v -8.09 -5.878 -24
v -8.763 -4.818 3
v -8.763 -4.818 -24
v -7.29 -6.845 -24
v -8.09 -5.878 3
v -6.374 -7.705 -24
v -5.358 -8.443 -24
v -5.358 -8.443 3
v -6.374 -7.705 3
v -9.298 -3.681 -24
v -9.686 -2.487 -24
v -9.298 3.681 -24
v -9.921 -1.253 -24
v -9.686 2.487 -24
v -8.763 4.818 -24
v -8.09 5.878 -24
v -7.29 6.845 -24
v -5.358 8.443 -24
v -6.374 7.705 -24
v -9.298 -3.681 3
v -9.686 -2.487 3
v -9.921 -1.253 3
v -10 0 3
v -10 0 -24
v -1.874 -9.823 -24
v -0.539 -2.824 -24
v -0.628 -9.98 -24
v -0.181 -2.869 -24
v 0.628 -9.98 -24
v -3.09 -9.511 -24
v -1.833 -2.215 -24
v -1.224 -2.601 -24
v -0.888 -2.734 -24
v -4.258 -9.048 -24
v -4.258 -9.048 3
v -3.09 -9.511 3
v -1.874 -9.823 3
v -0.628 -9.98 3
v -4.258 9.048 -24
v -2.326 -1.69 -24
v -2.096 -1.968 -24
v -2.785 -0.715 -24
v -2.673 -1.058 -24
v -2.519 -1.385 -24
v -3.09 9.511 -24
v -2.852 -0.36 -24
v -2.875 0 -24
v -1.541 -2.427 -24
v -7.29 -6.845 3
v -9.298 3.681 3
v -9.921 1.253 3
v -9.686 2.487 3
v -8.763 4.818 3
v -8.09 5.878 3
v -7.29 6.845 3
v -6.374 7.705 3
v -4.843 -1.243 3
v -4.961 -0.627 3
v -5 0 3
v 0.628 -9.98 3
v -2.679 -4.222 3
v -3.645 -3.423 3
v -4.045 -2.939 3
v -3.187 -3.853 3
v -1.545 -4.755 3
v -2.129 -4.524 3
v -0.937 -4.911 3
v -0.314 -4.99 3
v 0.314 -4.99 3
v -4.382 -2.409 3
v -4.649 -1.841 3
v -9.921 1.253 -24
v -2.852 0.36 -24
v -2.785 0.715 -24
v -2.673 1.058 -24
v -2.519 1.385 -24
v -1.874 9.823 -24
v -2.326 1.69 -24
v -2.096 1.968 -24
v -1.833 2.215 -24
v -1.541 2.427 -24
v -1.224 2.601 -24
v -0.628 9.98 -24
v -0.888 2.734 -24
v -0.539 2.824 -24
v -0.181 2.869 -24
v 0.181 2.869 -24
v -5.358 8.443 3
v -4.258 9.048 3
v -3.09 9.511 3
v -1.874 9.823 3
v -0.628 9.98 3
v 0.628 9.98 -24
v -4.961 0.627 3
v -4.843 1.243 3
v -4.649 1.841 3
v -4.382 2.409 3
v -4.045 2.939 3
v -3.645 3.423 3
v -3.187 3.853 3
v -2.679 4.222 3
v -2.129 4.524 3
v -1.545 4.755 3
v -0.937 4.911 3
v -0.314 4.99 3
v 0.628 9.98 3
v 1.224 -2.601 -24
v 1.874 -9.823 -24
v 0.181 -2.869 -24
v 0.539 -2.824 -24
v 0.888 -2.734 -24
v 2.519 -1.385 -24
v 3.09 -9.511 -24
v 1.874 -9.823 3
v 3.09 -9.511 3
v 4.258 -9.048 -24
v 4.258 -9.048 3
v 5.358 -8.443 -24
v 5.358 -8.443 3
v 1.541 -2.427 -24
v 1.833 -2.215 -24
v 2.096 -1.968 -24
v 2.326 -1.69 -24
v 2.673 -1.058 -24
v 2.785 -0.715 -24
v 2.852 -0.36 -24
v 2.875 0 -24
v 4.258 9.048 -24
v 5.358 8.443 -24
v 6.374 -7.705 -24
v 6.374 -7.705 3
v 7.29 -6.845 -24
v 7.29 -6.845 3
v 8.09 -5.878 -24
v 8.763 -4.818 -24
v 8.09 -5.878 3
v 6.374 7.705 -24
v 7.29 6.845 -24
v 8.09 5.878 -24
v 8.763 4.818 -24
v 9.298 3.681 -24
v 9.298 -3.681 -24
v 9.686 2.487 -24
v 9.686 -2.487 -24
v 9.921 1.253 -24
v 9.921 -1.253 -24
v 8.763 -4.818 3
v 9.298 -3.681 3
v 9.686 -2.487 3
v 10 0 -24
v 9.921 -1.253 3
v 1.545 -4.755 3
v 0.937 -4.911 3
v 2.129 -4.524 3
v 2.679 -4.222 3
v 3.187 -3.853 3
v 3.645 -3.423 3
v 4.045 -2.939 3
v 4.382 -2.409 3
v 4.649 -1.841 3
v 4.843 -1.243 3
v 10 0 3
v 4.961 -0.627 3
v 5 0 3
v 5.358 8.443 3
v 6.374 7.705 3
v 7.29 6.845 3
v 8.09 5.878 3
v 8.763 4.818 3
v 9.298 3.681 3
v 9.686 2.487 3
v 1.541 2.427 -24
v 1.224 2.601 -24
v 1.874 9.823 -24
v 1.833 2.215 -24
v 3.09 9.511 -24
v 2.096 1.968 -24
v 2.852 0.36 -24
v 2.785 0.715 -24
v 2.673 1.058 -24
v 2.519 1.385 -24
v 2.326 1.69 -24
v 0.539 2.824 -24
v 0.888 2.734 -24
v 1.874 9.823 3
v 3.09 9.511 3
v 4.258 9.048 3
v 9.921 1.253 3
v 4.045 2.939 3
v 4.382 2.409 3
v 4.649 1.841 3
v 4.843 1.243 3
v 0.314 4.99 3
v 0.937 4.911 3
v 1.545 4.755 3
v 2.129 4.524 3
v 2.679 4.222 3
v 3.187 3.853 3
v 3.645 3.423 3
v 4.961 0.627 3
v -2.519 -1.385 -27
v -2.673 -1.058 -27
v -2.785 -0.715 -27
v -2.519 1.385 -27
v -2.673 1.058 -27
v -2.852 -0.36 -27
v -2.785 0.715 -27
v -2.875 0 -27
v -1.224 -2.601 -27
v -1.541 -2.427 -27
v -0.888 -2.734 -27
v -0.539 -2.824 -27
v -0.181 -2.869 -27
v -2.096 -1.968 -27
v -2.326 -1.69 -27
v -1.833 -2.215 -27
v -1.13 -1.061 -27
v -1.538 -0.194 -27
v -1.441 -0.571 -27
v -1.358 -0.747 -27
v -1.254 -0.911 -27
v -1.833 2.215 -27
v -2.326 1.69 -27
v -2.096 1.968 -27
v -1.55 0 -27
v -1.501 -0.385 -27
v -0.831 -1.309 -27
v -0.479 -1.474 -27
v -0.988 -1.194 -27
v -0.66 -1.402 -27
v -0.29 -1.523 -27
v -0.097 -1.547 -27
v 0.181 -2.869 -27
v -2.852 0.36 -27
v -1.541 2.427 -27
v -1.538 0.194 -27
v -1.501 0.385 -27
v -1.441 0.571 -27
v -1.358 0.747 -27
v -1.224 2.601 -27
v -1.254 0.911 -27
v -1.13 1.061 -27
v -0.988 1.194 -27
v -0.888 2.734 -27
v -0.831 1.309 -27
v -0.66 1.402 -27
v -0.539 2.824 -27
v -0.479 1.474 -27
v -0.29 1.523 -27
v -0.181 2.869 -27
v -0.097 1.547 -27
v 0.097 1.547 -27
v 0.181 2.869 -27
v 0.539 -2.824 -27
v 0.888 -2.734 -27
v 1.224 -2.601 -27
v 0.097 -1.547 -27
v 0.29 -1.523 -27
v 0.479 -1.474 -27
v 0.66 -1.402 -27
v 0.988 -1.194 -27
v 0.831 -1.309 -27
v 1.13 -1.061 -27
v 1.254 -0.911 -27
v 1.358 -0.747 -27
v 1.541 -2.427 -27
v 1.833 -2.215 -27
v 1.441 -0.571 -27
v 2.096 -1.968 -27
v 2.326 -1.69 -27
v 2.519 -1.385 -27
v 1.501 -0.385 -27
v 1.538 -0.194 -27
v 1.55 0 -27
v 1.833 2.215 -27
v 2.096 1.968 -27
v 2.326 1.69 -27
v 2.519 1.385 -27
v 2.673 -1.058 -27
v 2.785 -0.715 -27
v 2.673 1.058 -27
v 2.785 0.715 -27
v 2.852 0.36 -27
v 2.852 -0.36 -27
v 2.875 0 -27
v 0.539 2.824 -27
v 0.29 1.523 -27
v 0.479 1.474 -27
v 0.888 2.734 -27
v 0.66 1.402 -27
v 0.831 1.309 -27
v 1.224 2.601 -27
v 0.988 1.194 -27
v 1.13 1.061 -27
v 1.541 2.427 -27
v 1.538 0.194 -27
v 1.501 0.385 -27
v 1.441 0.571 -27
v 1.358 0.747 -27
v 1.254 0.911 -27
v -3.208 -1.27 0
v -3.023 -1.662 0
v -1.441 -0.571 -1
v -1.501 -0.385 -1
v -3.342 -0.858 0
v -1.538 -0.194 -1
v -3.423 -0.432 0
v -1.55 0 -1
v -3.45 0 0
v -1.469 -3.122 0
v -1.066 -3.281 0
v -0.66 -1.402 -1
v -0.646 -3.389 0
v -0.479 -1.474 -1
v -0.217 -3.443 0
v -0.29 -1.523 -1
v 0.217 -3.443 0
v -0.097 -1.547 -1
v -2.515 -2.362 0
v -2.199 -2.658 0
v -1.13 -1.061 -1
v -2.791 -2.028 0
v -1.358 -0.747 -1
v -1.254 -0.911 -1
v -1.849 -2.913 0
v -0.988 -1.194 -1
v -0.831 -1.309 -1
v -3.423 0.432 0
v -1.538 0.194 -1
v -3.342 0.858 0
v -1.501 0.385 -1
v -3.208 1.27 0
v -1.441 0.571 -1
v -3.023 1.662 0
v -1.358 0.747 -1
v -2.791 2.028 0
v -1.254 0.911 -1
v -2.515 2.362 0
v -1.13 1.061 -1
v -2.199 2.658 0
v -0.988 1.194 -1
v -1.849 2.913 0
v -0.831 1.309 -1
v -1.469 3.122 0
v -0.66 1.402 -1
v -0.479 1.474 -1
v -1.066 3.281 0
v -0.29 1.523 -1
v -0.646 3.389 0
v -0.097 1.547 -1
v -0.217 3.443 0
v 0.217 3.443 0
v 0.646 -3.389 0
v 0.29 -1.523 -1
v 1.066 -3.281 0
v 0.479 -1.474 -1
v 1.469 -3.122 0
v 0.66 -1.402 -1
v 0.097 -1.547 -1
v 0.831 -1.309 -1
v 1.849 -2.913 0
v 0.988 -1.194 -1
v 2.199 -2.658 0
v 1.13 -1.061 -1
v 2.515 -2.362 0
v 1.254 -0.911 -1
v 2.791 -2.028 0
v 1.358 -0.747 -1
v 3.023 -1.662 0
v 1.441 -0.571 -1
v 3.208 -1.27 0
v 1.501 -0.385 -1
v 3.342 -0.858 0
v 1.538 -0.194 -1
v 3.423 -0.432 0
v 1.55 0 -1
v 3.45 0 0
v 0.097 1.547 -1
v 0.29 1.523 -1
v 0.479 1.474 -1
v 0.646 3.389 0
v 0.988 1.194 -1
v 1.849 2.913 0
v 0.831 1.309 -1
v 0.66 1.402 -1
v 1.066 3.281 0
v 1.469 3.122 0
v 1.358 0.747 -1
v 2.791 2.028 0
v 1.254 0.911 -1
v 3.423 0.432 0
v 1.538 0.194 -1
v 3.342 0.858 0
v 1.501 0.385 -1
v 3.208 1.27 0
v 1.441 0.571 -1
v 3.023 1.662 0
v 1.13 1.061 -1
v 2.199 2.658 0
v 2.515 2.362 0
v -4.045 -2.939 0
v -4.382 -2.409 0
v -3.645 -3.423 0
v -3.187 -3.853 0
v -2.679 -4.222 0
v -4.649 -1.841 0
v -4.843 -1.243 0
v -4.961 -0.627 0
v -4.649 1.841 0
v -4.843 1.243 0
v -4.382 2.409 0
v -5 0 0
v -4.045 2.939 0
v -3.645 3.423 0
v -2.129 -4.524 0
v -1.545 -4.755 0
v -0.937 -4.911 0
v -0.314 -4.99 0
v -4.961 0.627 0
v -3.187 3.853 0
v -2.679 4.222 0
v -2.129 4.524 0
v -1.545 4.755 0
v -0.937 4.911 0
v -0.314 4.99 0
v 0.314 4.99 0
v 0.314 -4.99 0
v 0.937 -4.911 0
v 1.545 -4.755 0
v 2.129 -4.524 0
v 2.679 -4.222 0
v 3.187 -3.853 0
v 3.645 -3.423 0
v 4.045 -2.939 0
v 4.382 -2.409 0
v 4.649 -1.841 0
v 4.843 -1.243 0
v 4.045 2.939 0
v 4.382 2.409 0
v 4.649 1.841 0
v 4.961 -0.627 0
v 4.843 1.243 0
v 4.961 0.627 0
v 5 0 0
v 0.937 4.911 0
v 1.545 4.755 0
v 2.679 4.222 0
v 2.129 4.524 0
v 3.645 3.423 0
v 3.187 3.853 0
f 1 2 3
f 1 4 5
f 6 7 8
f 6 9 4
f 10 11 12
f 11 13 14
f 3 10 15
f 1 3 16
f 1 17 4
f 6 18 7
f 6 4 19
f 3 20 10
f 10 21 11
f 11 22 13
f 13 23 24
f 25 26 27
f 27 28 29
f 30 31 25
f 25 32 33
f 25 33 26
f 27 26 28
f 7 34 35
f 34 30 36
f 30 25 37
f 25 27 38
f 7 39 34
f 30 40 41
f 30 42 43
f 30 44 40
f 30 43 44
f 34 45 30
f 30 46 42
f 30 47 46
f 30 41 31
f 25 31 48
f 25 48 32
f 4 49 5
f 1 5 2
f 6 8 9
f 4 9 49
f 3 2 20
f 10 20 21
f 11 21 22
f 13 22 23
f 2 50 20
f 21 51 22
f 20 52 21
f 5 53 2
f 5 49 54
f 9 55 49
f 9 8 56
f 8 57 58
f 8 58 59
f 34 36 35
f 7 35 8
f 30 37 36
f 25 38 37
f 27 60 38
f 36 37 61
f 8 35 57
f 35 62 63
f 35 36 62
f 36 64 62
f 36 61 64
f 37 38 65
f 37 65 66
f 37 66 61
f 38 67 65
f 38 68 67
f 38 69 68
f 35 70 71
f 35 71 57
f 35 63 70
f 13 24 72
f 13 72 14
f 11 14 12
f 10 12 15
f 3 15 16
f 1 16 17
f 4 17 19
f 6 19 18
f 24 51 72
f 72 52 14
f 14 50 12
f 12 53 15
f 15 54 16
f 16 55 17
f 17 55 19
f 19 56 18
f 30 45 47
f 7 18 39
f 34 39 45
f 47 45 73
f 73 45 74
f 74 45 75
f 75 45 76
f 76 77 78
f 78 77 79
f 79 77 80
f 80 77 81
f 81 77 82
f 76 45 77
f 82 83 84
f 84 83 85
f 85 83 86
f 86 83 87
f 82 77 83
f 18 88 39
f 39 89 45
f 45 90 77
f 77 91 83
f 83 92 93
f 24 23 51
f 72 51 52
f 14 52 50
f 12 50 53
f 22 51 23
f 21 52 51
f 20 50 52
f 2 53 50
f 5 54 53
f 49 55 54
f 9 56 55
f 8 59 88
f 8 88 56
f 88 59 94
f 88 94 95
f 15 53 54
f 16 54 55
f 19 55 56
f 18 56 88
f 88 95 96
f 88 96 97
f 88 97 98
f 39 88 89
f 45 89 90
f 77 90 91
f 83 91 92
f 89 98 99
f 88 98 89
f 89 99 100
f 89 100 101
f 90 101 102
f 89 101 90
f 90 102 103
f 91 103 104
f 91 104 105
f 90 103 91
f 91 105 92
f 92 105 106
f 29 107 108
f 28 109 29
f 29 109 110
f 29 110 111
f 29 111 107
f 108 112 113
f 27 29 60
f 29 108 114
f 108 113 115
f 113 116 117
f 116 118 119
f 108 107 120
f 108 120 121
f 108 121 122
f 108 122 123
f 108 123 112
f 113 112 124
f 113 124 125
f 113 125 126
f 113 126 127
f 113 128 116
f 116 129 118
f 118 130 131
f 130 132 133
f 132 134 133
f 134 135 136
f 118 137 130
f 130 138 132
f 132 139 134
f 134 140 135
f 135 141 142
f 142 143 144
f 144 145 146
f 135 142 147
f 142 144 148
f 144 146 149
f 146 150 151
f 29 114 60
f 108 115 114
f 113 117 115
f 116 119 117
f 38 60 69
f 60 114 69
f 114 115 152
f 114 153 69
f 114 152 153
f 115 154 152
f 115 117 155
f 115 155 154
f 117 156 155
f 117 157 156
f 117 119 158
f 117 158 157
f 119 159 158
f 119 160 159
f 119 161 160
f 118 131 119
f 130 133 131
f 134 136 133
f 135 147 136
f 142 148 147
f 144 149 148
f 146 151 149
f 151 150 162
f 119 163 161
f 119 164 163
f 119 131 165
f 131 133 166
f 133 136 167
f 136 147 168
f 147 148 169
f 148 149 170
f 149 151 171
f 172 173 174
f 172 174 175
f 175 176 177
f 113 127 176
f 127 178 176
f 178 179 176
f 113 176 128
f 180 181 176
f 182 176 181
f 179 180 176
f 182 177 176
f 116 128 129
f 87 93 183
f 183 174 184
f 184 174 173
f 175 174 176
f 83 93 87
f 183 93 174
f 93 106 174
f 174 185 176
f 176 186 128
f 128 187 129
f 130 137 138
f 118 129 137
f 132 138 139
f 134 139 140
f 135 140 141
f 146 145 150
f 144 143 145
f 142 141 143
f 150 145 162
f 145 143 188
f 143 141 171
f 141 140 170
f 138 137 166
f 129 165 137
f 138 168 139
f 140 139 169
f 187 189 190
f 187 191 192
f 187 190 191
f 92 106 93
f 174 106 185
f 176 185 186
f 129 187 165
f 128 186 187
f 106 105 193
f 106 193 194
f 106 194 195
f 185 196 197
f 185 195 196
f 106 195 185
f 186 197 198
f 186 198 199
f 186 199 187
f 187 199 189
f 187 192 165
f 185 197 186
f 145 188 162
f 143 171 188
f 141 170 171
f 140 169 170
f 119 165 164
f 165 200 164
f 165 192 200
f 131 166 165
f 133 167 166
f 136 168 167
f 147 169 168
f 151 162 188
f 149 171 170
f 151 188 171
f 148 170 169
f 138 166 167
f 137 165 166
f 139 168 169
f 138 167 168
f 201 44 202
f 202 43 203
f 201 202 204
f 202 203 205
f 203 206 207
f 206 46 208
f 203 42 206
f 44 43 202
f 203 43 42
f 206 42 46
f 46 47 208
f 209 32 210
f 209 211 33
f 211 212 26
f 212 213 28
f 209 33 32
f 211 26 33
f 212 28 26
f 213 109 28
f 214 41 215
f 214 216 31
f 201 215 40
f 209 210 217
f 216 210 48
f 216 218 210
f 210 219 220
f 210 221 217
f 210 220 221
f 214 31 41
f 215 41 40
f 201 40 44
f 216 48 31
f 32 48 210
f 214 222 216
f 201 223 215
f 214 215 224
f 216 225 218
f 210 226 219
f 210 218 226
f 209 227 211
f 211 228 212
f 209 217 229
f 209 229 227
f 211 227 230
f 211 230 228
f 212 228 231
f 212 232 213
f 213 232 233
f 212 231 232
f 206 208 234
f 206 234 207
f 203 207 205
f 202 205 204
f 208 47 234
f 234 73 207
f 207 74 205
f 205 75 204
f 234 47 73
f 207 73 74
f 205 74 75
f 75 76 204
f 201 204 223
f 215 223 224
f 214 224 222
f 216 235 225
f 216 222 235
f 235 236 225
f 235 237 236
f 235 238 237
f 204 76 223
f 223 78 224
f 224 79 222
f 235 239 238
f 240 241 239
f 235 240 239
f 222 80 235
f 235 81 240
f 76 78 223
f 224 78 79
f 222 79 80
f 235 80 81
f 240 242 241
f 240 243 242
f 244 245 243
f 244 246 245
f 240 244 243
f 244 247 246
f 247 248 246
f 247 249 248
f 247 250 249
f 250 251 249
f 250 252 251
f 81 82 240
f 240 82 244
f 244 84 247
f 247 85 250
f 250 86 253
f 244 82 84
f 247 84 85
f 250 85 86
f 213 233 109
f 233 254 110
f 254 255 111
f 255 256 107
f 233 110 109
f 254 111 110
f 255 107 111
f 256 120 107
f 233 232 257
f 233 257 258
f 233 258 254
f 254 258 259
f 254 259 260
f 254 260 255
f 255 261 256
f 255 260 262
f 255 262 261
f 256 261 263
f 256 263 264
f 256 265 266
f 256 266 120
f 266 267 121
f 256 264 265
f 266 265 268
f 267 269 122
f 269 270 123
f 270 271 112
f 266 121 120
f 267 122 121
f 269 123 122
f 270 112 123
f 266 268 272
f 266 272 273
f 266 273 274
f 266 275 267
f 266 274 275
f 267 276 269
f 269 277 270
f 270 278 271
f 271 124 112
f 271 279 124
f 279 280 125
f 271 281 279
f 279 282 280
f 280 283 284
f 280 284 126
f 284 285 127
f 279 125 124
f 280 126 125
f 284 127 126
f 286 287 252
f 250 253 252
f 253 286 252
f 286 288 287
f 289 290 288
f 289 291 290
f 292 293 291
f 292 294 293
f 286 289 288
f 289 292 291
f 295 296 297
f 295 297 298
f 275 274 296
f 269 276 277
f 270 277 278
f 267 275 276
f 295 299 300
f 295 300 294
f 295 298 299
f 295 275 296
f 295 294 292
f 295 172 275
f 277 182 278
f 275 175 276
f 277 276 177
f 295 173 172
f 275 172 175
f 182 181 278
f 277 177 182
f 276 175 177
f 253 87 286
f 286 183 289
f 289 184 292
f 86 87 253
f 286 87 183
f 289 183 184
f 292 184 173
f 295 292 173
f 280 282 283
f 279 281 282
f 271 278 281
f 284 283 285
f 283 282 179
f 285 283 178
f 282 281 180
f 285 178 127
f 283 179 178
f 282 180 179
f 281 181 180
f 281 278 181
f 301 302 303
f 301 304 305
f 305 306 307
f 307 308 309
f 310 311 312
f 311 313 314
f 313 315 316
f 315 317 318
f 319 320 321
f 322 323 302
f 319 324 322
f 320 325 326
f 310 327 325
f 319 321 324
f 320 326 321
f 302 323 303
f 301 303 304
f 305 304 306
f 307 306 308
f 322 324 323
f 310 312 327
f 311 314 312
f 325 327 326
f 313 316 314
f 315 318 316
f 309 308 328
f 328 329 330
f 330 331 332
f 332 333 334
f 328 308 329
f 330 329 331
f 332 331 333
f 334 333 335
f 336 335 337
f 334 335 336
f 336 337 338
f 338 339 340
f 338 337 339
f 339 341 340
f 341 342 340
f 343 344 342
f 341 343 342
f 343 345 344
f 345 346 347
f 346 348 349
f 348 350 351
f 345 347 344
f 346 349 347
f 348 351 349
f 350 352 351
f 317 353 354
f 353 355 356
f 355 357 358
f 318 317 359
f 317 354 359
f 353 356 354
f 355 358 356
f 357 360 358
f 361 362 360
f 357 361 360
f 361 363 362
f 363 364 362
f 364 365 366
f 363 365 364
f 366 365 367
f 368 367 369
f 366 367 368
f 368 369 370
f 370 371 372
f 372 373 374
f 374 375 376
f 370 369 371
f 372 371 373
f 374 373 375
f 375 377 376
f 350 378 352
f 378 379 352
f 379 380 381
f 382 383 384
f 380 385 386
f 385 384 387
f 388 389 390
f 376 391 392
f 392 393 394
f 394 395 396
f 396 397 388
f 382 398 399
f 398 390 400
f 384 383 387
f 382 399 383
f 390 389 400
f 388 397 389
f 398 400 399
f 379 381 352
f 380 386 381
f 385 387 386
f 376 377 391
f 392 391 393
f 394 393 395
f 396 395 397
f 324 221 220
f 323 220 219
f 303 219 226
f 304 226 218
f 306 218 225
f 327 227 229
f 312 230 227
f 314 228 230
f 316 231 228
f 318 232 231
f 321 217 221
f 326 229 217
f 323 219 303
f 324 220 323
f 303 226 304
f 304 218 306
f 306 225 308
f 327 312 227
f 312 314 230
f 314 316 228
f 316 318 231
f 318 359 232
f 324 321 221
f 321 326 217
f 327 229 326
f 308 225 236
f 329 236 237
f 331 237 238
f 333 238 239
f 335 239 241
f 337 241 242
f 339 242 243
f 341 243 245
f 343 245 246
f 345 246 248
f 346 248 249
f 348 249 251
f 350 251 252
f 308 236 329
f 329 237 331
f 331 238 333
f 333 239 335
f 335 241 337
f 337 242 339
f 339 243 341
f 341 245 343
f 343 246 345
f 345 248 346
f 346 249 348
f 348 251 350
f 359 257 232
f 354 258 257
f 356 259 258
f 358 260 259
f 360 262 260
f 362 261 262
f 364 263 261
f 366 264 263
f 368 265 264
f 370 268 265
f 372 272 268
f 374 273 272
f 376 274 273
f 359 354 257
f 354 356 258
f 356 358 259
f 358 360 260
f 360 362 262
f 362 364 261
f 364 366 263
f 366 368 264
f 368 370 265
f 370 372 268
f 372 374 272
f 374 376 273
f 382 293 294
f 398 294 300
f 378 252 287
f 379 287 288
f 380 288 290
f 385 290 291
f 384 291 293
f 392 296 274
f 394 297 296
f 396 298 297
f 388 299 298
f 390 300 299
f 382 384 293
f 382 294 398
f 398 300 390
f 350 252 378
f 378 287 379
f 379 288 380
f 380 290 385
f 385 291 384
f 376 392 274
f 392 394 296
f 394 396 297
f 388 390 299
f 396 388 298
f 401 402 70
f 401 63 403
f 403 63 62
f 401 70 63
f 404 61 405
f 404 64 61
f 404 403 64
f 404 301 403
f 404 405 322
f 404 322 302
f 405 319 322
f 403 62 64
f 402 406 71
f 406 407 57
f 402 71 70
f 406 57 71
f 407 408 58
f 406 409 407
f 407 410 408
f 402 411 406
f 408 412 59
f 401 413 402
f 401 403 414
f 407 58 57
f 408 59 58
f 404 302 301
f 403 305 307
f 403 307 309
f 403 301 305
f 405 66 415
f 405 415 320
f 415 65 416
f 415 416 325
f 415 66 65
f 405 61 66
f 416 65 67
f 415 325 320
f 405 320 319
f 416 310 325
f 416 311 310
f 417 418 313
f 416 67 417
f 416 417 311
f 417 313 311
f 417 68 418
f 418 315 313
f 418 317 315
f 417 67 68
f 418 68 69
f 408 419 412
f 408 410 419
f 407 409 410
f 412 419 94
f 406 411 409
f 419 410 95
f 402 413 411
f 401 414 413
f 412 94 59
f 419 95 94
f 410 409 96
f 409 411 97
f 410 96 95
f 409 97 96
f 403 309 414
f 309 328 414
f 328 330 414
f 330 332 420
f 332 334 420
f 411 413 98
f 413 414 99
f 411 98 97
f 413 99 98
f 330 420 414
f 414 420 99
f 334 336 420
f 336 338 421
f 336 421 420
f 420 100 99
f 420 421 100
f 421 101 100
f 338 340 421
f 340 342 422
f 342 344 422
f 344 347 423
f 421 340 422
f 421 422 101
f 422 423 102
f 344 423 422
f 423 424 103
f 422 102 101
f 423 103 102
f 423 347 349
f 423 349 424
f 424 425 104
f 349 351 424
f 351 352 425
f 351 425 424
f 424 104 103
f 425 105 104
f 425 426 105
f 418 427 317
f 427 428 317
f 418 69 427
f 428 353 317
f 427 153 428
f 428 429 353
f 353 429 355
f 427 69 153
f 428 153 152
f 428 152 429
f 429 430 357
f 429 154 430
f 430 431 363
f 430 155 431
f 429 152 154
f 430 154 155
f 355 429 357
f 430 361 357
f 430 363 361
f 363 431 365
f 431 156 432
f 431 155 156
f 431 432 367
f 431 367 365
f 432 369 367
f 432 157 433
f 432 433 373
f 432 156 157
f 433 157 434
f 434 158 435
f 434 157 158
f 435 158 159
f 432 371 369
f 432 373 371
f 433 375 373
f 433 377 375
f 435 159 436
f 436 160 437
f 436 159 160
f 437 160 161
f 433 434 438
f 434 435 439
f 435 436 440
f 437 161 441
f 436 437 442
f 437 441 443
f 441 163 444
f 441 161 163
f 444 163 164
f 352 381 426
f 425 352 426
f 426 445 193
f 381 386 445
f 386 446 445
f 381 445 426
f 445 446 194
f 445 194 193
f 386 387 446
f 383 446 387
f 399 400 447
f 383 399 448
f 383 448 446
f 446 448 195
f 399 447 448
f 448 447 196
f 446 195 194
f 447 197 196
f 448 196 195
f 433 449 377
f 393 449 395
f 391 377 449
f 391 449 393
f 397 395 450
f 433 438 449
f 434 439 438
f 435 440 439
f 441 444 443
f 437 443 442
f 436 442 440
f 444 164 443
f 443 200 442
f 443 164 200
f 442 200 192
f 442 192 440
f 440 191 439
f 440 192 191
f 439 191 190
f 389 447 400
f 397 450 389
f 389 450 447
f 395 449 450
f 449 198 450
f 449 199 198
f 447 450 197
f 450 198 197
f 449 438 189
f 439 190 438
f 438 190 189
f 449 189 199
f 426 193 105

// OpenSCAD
$fn = 50;

difference() {
	union() {
		translate(v = [0, 0, -24.0]) {
			cylinder(h = 27, r = 10.0);
		}
		#translate(v = [0, 0, -27.0]) {
			cylinder(h = 27, r = 2.875);
		}
	}
	union() {
		translate(v = [0, 0, 0]) {
			rotate(a = [0, 0, 0]) {
				difference() {
					union() {
						translate(v = [0, 0, -27.0]) {
							cylinder(h = 27, r = 1.25);
						}
						translate(v = [0, 0, -1.0]) {
							cylinder(h = 1.0, r1 = 1.55, r2 = 3.45);
						}
						translate(v = [0, 0, -27.0]) {
							cylinder(h = 27, r = 1.55);
						}
						translate(v = [0, 0, -27.0]) {
							cylinder(h = 27, r = 1.25);
						}
					}
					union();
				}
			}
		}
		#cylinder(h = 3, r = 5.0);
	}
}
